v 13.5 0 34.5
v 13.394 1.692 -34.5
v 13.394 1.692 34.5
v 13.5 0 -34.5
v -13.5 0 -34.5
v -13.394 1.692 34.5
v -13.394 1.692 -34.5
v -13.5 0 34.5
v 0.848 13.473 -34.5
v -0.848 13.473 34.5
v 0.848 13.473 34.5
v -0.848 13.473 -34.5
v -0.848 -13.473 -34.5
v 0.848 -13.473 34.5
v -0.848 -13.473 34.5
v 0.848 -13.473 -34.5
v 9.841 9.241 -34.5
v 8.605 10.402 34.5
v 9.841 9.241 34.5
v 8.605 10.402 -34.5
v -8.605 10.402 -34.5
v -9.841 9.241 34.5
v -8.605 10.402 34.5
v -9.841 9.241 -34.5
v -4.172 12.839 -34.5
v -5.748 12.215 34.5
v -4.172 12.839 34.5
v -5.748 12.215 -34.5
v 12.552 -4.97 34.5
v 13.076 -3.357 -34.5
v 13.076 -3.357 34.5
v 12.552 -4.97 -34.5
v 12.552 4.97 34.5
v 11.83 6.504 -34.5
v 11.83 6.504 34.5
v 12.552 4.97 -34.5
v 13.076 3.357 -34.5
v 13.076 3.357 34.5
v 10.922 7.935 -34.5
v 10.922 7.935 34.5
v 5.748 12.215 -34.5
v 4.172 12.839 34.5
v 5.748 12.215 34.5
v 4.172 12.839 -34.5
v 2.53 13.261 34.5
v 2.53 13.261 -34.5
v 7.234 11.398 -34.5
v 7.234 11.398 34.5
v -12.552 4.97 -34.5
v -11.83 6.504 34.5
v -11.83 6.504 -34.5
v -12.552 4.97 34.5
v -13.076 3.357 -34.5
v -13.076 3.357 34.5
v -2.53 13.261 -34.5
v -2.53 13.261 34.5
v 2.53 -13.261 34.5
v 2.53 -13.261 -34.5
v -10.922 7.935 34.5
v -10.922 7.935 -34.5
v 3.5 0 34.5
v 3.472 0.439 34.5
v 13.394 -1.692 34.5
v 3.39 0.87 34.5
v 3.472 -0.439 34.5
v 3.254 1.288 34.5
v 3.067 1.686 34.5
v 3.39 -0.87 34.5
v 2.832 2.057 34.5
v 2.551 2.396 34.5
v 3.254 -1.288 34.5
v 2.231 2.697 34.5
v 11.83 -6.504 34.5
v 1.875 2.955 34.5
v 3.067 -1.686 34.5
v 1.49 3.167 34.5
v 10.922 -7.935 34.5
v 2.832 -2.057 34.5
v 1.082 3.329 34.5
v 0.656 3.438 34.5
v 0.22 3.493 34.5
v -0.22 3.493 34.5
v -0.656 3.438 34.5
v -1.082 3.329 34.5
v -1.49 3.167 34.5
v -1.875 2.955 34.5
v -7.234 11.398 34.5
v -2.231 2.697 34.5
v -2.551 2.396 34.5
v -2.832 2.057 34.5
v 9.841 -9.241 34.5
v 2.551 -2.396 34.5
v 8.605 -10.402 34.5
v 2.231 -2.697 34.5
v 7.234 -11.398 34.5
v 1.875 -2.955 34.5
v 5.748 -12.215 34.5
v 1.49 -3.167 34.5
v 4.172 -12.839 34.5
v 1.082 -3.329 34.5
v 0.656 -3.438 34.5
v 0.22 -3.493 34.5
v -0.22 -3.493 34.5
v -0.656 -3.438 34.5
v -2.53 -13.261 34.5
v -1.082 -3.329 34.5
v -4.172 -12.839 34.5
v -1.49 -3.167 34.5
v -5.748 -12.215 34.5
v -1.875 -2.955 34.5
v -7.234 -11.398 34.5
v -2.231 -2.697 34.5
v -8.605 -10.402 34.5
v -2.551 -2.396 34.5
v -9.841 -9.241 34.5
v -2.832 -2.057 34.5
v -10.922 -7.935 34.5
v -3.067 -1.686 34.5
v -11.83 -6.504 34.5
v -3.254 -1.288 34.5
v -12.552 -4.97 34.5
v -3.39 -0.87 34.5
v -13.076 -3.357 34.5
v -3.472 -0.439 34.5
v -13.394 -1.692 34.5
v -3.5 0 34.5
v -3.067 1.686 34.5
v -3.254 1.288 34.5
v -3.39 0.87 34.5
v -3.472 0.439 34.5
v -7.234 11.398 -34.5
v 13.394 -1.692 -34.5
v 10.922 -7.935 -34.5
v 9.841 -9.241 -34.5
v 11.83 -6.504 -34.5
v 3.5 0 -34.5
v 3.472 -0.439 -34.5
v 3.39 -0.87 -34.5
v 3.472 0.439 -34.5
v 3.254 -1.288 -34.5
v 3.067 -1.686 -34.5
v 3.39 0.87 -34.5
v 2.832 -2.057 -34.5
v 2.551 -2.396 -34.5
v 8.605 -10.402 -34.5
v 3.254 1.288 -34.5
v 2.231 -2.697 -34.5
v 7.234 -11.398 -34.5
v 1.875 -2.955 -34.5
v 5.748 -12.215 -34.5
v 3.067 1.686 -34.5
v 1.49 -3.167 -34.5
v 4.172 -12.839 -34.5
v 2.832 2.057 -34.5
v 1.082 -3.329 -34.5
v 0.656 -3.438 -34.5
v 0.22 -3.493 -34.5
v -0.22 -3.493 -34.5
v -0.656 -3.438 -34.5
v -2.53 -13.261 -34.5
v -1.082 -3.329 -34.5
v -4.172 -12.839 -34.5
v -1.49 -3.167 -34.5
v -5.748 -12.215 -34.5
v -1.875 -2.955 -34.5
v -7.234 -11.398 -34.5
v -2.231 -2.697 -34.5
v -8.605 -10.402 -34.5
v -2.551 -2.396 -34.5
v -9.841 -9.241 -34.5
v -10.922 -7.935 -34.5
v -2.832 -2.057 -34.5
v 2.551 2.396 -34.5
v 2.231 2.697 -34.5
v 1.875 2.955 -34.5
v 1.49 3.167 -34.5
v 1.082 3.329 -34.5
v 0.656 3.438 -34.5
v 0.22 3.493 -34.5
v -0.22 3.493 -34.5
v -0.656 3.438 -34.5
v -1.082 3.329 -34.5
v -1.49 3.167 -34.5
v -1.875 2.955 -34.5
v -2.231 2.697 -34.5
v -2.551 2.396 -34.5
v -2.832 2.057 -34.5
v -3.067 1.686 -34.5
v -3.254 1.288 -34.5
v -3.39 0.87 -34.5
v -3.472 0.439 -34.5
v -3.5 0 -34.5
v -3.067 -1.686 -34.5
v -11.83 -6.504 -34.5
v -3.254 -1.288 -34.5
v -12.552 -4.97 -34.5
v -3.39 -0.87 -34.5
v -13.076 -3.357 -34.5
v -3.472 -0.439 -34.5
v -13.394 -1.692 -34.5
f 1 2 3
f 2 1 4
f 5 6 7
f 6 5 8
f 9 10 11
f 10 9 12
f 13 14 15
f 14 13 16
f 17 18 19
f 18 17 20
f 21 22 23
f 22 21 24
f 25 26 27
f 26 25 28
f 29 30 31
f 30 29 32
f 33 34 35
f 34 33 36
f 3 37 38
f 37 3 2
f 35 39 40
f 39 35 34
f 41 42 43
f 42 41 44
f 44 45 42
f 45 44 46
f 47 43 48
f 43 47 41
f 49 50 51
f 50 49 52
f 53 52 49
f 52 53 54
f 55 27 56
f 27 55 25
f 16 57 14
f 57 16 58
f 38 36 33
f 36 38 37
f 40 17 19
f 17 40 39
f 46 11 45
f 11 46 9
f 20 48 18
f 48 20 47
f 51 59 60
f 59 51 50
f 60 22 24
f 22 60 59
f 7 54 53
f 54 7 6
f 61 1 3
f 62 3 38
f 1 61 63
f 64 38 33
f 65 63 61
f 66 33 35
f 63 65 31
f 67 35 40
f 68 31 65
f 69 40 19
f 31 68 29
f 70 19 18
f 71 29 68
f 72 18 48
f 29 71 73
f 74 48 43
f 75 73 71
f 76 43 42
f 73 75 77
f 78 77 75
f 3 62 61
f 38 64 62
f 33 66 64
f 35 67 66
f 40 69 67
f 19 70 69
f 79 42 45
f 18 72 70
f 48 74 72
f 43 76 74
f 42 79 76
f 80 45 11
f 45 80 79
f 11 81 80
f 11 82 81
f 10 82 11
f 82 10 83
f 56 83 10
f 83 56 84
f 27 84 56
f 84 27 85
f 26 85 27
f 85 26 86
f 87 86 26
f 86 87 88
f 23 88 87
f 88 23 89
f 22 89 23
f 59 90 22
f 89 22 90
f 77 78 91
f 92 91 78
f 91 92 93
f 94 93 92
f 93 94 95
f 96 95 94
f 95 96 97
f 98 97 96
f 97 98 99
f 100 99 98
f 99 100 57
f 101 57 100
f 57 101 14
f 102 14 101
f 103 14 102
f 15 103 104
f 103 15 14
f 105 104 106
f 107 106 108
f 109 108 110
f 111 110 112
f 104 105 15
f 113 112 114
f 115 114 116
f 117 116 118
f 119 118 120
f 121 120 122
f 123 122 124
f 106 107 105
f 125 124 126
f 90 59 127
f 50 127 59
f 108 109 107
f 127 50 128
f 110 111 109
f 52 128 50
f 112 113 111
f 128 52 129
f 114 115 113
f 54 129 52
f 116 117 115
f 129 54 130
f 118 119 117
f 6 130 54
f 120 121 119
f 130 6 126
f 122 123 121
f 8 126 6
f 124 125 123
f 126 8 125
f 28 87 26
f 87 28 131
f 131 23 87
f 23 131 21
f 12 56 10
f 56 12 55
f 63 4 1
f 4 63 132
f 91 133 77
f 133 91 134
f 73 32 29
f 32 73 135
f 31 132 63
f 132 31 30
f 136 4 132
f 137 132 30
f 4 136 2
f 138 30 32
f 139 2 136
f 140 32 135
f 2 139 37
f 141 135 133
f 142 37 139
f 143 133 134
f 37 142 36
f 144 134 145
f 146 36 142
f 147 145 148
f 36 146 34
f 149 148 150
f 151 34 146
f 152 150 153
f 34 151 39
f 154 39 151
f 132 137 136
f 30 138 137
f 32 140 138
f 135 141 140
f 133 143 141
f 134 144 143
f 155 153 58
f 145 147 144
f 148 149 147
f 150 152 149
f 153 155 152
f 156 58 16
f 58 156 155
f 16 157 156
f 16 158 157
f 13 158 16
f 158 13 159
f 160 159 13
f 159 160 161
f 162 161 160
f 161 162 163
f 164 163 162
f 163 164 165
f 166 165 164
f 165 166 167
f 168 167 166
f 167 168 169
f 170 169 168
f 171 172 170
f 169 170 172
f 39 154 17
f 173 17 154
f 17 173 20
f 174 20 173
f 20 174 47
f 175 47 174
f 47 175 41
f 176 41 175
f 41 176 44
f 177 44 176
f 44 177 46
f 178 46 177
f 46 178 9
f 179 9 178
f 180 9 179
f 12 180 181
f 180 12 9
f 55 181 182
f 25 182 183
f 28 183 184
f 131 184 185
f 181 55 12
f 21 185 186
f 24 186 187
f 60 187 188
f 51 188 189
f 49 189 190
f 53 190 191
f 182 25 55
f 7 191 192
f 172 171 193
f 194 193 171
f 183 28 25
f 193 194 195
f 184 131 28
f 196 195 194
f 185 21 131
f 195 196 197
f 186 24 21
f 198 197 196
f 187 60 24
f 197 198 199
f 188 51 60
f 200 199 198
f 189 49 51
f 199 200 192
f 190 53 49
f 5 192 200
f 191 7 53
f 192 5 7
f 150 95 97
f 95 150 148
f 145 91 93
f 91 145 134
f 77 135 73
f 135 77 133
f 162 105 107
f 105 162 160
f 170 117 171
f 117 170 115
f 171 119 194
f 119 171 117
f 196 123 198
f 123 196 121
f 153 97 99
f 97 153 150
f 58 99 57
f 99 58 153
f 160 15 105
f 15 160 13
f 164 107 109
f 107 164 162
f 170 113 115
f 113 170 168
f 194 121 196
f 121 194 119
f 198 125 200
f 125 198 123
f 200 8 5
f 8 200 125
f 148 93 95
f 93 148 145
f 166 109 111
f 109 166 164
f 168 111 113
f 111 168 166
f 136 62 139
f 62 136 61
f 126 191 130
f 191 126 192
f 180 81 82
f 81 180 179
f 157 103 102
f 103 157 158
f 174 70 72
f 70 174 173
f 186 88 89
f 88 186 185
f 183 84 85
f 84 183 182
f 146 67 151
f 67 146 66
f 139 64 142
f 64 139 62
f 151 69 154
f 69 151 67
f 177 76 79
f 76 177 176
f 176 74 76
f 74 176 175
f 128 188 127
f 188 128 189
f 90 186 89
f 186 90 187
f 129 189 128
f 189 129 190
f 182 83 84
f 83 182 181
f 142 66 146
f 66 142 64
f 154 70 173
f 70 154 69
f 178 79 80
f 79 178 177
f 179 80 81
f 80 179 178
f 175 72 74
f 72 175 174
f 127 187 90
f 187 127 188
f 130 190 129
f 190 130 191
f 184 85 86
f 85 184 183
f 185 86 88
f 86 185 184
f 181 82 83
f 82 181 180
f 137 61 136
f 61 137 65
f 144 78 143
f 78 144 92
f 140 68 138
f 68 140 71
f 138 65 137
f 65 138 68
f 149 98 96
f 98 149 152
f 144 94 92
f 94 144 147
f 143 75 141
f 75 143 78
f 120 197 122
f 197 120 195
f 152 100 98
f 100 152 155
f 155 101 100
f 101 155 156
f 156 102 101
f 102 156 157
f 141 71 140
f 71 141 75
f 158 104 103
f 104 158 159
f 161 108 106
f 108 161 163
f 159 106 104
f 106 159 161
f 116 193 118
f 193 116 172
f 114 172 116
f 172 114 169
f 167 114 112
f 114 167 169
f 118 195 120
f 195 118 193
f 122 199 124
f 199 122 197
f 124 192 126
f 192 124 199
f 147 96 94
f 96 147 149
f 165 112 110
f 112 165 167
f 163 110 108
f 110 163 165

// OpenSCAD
$fn = 50;


difference() {
	union() {
		translate(v = [0, 0, -34.5000000000]) {
			cylinder(h = 69, r = 13.5000000000);
		}
	}
	union() {
		translate(v = [0, 0, -100.0000000000]) {
			cylinder(h = 200, r = 3.5000000000);
		}
	}
}
